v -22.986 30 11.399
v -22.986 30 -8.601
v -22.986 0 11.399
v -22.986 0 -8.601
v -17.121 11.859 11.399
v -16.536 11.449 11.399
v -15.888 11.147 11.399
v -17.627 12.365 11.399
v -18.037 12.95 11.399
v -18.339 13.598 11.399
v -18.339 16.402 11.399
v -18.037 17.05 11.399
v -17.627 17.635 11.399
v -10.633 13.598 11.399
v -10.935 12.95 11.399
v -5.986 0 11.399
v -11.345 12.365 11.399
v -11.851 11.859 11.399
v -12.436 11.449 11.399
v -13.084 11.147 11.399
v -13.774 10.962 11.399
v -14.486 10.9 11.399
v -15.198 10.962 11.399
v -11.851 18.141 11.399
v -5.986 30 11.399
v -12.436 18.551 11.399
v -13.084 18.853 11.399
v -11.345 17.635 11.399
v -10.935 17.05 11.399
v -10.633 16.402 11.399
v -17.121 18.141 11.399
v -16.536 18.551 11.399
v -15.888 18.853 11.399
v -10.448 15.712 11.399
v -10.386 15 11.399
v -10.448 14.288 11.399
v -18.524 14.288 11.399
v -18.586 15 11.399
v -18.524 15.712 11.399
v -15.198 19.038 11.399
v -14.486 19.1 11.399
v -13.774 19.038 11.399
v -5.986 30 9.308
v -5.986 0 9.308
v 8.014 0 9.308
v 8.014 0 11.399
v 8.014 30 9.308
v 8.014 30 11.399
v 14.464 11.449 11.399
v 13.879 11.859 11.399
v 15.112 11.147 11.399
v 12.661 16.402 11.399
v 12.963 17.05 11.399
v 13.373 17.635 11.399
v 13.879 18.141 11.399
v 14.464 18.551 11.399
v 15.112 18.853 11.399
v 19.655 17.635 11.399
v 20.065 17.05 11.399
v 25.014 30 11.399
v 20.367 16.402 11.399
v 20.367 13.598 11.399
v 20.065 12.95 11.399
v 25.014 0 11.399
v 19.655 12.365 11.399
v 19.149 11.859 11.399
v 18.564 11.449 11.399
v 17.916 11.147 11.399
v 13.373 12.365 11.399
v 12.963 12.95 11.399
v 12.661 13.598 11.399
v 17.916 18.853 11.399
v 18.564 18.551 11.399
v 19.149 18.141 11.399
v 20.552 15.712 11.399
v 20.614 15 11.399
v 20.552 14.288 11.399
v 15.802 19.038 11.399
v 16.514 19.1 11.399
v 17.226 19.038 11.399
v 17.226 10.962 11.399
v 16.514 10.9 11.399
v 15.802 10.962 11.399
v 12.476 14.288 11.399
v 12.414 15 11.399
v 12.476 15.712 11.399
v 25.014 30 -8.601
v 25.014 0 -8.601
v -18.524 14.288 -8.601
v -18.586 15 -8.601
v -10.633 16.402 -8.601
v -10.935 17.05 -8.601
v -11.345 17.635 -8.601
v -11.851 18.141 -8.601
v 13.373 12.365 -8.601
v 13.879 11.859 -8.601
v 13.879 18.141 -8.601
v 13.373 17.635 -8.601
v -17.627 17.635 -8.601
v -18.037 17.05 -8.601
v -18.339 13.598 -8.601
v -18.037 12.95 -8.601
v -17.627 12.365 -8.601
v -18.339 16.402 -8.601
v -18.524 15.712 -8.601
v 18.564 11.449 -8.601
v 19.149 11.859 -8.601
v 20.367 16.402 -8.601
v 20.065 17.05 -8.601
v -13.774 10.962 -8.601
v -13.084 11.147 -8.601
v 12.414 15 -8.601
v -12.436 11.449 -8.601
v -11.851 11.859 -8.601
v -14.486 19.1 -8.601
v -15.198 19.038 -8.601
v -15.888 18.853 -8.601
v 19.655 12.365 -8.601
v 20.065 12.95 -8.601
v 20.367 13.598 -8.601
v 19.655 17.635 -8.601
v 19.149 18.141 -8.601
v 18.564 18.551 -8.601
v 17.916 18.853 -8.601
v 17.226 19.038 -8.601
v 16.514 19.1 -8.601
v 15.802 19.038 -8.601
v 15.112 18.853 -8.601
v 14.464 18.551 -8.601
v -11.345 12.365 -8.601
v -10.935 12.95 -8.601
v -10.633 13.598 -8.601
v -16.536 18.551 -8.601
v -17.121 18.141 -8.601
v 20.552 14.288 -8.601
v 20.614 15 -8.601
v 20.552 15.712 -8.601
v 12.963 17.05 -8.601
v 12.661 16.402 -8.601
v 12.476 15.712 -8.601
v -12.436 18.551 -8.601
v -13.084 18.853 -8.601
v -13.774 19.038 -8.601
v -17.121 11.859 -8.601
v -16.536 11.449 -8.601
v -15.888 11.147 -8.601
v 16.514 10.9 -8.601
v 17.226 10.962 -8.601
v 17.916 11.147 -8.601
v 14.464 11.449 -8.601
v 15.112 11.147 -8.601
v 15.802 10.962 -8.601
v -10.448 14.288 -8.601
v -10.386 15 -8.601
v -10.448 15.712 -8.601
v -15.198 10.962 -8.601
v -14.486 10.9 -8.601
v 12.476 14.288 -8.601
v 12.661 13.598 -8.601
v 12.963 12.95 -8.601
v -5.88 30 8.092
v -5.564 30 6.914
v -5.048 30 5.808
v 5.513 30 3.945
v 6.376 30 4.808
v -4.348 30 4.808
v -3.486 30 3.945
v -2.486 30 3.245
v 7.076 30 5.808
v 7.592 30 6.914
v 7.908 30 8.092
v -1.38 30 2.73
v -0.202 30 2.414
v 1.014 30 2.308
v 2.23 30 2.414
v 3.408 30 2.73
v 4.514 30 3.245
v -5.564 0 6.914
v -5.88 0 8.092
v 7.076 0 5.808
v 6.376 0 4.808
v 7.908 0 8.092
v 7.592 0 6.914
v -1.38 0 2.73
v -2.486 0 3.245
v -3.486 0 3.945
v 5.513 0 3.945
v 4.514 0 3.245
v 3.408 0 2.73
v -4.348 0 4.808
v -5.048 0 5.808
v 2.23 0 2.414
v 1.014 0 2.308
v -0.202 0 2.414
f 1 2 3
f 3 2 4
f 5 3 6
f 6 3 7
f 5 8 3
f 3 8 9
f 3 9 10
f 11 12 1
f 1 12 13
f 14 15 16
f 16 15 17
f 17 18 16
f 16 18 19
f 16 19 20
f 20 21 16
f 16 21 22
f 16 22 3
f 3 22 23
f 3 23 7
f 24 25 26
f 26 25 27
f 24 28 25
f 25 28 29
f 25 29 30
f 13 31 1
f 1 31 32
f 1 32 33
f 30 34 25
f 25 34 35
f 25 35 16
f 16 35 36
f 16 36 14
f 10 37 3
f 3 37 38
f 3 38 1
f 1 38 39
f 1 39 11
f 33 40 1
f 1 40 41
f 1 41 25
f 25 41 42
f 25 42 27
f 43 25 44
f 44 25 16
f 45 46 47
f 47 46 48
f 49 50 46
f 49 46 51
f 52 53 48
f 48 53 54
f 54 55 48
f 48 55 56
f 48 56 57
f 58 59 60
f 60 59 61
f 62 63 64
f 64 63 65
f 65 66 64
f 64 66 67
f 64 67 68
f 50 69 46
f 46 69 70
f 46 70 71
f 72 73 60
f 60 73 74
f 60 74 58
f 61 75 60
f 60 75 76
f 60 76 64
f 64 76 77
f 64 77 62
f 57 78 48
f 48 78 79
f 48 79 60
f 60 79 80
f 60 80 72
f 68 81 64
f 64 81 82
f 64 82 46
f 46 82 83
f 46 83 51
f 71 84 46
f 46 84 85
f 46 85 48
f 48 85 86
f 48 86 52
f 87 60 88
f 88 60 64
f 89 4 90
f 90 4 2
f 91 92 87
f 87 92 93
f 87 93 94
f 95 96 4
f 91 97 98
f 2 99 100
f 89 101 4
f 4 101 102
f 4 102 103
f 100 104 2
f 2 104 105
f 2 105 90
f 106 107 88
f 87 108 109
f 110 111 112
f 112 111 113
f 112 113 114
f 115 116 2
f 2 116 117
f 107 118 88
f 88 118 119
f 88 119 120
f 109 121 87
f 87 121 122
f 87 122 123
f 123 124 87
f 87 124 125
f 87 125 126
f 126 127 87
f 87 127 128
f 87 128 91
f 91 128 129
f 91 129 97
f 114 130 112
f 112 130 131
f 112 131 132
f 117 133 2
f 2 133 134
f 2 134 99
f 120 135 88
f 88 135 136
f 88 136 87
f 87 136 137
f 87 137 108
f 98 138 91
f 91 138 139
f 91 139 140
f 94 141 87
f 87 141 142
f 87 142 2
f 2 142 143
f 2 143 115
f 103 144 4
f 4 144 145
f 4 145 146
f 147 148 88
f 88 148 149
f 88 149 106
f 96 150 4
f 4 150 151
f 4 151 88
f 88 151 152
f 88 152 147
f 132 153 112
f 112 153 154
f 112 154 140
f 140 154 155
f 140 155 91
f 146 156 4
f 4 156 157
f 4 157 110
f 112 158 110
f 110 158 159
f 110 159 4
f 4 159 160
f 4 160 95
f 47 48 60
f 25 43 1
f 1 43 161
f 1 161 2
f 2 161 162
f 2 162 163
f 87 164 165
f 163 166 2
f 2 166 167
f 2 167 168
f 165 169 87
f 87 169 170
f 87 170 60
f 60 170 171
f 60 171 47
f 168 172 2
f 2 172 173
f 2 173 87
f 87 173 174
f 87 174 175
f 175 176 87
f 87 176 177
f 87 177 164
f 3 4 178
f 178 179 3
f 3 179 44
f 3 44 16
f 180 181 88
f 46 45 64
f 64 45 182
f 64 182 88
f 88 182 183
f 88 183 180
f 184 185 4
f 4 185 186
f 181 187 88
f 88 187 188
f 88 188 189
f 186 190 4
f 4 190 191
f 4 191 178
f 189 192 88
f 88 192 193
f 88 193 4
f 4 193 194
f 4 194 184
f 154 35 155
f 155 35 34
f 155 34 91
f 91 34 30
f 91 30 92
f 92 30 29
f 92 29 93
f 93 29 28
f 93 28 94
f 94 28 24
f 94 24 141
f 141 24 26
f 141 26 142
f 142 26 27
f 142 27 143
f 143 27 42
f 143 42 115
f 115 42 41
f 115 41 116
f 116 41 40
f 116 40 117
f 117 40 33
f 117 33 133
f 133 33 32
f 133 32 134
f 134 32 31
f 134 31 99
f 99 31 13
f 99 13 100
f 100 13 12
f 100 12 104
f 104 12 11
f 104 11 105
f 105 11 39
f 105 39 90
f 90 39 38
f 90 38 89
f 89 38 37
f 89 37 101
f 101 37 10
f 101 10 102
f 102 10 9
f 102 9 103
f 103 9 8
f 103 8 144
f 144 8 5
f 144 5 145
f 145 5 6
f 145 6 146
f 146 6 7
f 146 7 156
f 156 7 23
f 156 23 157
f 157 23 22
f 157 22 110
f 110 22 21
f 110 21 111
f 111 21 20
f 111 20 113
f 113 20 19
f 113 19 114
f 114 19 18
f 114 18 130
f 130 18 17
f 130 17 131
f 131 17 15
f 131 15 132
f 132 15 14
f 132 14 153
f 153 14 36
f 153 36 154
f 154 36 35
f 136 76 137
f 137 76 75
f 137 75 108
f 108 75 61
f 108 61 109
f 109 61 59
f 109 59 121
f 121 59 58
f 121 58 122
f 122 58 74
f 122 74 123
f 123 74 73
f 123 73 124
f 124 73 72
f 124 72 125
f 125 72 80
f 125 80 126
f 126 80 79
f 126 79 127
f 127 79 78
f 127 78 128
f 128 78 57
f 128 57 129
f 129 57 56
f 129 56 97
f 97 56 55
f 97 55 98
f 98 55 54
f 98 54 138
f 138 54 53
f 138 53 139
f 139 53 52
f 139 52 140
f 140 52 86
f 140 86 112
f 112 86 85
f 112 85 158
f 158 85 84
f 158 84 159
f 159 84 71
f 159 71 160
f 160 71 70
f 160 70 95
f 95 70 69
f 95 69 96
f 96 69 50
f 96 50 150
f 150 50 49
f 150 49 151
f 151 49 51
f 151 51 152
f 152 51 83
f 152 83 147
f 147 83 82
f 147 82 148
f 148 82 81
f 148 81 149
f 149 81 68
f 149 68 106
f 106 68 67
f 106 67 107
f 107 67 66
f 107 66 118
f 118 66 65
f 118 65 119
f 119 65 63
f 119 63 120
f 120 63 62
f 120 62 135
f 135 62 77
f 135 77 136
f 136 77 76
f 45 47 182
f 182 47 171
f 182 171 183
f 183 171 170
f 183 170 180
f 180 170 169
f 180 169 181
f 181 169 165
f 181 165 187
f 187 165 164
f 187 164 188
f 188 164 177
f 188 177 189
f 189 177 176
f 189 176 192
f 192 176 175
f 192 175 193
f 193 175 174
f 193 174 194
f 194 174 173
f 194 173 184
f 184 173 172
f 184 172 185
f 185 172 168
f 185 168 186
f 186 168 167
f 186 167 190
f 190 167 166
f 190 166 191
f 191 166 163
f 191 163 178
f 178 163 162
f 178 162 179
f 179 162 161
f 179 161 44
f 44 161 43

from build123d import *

# Parameters (mm, degrees)
BOSS_EXTRUDE1_DEPTH = 30
SKETCH3_R           = 4.1
CUT_EXTRUDE1_DEPTH  = 81.160460929
SKETCH4_R           = 4.1
CUT_EXTRUDE2_DEPTH  = 72.938334134
FILLET1_R           = 7
SKETCH6_W           = 10
SKETCH6_H           = 50
CUT_EXTRUDE3_DEPTH  = 71.426013762


with BuildPart() as part:
    # Sketch1 → Boss-Extrude1 (new body)
    with BuildSketch(Plane(origin=(0, 0, 0), x_dir=(1, 0, 0), z_dir=(0, 1, 0))):
        Polygon((-22.986013986, 8.601398601), (-22.986013986, -11.398601399), (-5.986013986, -11.398601399), (-5.986013986, -2.307692308), (8.013986014, -2.307692308), (8.013986014, -11.398601399), (25.013986014, -11.398601399), (25.013986014, 8.601398601), (6.013986014, 8.601398601), (6.013986014, 58.601398601), (-3.986013986, 58.601398601), (-3.986013986, 8.601398601), align=None)
    extrude(amount=BOSS_EXTRUDE1_DEPTH)

    # Sketch3 → Cut-Extrude1 (cut, through all)
    with BuildSketch(Plane.XY.offset(11.398601399)):
        with Locations((-14.486013986, 15)):
            Circle(SKETCH3_R)
        with Locations((16.513986014, 15)):
            Circle(SKETCH3_R)
    extrude(amount=-CUT_EXTRUDE1_DEPTH, mode=Mode.SUBTRACT)

    # Sketch4 → Cut-Extrude2 (cut, through all)
    with BuildSketch(Plane(origin=(6.013986014, 0, 0), x_dir=(0, 0, -1), z_dir=(1, 0, 0))):
        with Locations((28.601398601, 15)):
            Circle(SKETCH4_R)
        with Locations((48.601398601, 15)):
            Circle(SKETCH4_R)
    extrude(amount=-CUT_EXTRUDE2_DEPTH, mode=Mode.SUBTRACT)

    # Fillet1
    fillet1_edges = [part.edges().sort_by_distance(p)[0] for p in [
        (-5.986013986, 15, 2.307692308),
        (8.013986014, 15, 2.307692308),
    ]]
    fillet(fillet1_edges, radius=FILLET1_R - 0.0001)  # a hair under: the kernel refuses the full size

    # Sketch6 → Cut-Extrude3 (cut, through all)
    with BuildSketch(Plane(origin=(0, 30, 0), x_dir=(1, 0, 0), z_dir=(0, 1, 0))):
        with Locations((1.013986014, 33.601398601)):
            Rectangle(SKETCH6_W, SKETCH6_H)
    extrude(amount=-CUT_EXTRUDE3_DEPTH, mode=Mode.SUBTRACT)


solid = part.part
